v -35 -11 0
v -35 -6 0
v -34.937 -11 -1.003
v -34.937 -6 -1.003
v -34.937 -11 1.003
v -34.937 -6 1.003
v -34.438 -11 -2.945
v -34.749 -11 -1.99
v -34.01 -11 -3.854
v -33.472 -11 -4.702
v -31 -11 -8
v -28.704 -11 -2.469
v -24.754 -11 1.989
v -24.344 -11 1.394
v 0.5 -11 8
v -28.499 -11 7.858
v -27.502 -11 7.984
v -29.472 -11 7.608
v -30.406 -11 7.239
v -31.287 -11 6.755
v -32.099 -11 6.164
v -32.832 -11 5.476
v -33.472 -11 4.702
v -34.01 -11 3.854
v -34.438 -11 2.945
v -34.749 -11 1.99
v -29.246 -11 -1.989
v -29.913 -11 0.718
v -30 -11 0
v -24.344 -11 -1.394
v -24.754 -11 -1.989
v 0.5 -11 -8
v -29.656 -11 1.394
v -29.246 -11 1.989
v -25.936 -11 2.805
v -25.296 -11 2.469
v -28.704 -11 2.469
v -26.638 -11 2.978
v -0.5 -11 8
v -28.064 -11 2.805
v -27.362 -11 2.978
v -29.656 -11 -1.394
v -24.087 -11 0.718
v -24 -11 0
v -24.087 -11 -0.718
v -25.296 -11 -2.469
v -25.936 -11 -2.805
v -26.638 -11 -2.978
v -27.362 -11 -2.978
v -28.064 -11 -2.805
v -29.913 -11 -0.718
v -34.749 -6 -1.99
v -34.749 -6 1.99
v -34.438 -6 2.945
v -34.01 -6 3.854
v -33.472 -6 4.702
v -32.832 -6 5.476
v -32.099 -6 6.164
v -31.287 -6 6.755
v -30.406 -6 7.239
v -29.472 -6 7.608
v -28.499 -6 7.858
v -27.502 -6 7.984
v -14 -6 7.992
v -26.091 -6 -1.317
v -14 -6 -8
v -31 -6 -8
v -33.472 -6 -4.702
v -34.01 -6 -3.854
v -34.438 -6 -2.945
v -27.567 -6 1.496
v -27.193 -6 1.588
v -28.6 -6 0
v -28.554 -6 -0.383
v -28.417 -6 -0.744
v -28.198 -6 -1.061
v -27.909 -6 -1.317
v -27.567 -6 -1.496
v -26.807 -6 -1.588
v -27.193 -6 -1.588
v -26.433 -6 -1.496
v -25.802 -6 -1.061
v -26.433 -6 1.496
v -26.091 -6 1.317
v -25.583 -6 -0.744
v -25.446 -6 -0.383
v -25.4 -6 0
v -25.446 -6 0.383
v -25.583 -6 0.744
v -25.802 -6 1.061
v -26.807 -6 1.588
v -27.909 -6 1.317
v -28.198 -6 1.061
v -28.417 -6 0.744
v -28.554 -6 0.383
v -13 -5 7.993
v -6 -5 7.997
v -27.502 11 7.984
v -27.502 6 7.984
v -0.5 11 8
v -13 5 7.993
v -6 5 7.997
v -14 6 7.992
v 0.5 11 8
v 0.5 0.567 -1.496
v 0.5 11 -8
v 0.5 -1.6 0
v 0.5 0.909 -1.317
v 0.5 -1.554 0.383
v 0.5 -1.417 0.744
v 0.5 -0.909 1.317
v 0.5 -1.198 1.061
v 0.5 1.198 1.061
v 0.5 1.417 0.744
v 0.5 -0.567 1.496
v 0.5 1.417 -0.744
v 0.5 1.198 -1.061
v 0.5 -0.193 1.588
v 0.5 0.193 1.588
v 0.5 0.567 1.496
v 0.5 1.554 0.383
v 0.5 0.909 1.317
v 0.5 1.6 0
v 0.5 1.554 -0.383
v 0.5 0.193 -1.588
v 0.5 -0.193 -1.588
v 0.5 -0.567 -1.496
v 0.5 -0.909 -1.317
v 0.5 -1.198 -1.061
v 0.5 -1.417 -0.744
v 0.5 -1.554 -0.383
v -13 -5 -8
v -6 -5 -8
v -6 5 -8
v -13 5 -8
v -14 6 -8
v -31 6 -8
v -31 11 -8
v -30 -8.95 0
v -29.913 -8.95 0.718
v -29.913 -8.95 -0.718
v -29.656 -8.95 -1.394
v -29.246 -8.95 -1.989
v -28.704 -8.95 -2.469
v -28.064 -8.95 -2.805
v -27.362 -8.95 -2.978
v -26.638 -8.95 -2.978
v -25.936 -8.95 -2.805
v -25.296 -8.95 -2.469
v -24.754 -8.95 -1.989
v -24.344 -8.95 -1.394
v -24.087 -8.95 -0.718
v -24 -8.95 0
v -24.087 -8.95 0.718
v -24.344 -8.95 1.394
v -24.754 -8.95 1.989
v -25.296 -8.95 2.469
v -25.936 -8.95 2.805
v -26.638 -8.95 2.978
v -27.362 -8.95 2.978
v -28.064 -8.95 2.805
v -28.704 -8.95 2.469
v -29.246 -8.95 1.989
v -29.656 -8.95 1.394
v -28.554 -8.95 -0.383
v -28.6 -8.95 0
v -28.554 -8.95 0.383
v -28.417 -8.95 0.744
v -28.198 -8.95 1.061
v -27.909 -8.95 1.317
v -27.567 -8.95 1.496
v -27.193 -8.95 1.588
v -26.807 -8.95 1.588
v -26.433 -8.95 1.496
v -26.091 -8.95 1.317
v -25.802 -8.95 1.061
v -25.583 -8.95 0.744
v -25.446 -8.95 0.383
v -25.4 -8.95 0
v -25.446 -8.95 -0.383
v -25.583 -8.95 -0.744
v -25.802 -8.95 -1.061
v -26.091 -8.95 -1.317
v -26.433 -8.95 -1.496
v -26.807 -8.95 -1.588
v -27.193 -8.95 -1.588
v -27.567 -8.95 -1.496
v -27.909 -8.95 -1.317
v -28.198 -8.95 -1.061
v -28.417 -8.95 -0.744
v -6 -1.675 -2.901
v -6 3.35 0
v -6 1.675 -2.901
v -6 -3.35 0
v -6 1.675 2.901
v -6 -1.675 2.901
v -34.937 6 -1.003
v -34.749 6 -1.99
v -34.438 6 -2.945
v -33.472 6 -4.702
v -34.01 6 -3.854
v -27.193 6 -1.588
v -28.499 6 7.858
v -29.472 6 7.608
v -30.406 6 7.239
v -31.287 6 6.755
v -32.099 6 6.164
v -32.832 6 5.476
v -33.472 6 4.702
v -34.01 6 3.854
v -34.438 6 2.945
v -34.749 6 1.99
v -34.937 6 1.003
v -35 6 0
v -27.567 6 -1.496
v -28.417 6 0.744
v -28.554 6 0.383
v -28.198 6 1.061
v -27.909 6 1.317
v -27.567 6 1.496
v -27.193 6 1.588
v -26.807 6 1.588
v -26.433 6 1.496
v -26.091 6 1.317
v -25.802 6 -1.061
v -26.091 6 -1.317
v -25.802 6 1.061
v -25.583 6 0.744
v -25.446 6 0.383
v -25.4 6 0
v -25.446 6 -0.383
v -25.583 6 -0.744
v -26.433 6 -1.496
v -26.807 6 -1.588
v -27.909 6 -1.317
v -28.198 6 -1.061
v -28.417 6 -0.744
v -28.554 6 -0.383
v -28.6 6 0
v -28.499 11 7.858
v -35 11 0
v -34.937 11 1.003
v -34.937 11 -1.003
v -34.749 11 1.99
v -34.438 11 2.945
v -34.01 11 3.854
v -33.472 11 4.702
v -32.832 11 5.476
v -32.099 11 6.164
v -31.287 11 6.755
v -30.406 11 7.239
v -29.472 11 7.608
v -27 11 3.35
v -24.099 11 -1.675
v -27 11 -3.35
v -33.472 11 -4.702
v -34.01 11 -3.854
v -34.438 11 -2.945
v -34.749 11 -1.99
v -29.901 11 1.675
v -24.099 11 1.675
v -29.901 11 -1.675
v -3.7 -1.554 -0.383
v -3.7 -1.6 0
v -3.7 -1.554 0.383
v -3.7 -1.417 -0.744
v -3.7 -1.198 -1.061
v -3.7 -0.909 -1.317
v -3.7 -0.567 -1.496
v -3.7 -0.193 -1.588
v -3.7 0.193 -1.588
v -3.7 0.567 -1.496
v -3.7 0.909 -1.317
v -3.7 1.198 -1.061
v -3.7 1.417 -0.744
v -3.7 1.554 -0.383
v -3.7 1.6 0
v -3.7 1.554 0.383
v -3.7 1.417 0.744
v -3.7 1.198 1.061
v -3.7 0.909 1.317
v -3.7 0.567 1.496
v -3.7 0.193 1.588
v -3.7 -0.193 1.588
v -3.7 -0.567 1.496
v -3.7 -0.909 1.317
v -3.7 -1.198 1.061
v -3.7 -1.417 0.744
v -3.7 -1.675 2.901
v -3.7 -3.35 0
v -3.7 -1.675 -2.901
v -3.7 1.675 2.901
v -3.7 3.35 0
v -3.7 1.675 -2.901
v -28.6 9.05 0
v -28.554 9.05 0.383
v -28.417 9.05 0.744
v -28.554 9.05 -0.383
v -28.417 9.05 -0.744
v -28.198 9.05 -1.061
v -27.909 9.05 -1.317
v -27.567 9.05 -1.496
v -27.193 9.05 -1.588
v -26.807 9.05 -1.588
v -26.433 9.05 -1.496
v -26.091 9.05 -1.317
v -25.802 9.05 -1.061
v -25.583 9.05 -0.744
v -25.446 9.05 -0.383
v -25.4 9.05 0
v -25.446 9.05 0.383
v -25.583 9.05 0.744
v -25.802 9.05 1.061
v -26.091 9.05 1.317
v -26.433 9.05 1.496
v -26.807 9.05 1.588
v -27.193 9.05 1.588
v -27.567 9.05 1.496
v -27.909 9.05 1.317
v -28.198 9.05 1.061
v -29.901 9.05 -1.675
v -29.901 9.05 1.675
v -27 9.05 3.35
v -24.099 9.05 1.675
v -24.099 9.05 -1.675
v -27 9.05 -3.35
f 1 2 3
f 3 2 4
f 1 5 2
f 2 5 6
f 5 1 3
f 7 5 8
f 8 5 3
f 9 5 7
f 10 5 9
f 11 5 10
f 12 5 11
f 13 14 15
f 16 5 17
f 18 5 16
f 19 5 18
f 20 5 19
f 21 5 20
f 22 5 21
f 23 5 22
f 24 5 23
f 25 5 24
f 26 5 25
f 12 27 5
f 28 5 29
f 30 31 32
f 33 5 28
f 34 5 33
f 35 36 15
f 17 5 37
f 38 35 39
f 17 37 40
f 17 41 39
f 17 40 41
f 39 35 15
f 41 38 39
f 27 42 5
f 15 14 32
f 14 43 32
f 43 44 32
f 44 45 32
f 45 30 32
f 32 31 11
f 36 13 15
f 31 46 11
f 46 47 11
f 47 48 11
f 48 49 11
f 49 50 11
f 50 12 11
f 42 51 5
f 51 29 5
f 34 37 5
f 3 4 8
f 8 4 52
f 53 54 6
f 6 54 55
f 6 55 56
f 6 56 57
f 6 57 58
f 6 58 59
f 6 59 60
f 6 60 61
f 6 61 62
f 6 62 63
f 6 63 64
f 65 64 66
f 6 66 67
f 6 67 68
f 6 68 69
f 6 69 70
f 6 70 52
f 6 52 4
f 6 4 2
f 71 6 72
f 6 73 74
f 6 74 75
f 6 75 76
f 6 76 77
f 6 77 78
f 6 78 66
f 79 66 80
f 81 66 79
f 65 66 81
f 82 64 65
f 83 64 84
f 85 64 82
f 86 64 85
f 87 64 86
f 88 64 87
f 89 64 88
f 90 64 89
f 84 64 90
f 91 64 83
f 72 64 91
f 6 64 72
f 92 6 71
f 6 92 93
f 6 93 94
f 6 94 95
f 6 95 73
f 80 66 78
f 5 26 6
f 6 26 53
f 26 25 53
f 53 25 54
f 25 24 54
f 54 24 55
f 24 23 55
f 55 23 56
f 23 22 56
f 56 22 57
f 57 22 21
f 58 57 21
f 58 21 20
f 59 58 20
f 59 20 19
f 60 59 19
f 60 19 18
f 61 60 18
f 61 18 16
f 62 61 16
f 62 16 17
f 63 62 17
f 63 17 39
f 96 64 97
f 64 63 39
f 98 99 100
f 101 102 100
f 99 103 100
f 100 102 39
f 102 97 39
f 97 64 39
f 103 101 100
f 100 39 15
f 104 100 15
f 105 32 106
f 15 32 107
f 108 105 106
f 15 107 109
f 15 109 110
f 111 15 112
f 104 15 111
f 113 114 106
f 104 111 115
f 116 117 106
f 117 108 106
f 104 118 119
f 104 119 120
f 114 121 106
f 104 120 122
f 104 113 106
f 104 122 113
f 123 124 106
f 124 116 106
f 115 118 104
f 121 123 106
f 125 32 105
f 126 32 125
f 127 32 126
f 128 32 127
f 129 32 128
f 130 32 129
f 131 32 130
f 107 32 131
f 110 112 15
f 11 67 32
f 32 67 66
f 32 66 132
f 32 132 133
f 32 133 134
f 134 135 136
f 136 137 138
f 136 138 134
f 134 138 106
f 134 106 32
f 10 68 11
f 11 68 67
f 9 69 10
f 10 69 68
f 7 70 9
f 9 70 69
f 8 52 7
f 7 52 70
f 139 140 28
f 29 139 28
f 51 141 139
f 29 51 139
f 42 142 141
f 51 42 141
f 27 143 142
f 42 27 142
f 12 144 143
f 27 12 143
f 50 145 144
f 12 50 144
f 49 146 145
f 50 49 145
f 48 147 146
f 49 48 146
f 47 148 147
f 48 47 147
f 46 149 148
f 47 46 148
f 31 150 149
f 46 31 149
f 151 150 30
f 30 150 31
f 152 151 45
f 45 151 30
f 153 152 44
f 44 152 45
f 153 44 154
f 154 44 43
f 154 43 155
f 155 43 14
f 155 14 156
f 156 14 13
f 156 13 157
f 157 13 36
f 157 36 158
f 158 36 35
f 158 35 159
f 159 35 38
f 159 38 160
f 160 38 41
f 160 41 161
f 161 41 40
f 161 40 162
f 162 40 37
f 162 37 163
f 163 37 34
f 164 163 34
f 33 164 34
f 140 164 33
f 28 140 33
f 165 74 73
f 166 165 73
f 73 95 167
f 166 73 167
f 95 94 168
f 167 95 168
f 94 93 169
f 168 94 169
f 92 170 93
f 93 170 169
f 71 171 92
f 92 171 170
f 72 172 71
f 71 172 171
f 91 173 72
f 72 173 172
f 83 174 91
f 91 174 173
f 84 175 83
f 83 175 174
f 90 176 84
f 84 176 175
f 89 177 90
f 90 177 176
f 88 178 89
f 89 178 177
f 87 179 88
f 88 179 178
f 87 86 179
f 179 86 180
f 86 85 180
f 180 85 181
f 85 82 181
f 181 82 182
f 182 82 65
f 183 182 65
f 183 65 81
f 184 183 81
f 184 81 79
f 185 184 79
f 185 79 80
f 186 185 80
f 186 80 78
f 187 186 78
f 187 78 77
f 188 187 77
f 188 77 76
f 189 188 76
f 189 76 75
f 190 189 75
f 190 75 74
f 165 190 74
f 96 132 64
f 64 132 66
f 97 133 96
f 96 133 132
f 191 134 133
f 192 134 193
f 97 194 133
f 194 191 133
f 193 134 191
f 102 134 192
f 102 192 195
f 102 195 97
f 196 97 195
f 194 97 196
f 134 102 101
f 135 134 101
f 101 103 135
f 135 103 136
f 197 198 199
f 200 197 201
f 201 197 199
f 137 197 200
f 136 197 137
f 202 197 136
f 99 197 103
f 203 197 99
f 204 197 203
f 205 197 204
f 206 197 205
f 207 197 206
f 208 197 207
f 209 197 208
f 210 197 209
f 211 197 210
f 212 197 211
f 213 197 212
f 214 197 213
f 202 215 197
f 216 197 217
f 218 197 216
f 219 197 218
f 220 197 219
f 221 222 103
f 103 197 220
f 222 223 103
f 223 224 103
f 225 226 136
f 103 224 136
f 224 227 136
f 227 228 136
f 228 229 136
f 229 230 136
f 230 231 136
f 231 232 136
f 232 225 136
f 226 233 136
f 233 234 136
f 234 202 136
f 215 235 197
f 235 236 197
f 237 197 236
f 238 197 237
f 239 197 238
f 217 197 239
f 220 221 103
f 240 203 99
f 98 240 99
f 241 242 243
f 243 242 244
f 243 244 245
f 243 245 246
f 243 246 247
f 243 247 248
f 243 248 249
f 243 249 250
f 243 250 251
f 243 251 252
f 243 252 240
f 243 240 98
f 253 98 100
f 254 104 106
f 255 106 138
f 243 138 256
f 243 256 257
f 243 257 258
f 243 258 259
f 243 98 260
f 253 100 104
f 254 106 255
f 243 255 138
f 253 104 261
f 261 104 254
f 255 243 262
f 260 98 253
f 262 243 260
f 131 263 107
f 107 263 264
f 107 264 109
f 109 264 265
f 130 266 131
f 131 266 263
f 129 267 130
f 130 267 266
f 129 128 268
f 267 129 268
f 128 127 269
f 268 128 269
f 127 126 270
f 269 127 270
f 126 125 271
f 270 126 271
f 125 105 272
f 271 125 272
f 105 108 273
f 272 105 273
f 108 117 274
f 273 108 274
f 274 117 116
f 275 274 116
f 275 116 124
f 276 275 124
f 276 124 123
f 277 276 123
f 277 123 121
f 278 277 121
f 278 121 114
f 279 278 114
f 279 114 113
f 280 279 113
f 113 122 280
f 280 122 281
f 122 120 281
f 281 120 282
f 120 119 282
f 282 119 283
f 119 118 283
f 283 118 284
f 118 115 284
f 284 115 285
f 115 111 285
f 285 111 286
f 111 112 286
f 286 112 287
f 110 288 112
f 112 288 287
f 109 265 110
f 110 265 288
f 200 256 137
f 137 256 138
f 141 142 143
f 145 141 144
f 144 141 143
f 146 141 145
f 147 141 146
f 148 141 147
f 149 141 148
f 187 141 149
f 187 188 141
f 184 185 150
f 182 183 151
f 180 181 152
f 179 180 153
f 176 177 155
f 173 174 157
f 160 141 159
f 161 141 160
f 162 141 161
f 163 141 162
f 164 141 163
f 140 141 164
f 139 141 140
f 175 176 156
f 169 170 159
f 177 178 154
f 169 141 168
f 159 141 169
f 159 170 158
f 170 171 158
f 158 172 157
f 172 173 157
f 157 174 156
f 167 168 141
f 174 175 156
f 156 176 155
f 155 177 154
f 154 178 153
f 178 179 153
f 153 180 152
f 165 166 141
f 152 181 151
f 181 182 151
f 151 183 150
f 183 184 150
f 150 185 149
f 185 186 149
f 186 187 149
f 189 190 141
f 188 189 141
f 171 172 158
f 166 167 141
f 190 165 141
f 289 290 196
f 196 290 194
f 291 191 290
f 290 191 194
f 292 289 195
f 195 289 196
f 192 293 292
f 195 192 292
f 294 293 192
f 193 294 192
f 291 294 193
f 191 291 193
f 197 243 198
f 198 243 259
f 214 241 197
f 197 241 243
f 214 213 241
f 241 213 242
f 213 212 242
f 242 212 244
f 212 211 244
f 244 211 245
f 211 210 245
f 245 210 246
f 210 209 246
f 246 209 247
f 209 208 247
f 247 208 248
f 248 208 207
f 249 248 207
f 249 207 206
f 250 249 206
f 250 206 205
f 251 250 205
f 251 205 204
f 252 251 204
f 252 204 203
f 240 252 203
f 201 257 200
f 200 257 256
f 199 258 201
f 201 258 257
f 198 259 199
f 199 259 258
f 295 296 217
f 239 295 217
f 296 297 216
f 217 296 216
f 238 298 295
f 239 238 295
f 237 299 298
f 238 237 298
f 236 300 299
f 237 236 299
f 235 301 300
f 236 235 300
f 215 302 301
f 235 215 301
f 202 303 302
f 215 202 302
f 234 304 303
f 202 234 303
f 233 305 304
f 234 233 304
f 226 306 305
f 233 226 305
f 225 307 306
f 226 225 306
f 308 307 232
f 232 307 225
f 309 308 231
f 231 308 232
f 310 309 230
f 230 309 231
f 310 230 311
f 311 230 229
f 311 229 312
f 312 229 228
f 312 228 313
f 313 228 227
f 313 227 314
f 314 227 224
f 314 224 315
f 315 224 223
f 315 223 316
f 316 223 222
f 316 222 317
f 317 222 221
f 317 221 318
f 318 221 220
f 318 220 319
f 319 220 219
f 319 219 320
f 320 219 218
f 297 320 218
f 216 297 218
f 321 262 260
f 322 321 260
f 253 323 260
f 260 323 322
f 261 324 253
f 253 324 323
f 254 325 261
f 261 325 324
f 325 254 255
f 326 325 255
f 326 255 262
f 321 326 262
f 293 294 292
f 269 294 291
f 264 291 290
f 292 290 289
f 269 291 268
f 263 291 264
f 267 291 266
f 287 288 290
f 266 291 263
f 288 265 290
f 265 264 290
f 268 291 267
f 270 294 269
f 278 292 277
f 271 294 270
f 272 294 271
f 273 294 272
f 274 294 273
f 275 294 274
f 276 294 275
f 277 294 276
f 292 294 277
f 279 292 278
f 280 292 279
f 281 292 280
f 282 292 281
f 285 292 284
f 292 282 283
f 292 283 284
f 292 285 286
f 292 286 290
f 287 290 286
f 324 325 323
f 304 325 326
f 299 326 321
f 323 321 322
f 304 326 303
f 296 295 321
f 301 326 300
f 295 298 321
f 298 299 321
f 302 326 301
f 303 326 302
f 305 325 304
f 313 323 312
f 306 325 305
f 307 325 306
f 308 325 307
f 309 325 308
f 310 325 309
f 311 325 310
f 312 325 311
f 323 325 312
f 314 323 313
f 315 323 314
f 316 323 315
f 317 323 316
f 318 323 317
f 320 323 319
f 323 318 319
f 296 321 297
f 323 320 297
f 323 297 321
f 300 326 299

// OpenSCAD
// Y axis ilder - 623zz bearing
// Based on Powercode Code_Yidler_623.stl design (https://github.com/Mecan0/Code)
// By Julio Galaron (@jgalaron)
// Licence Creative commons atribution & share alike.

translate([0,0,0])difference(){

	hull(){
		cube([1,22,16], center=true);
		translate([-27,0,0])      rotate([90,0,0]) cylinder(h=22, r=16/2, $fn=50, center=true);
		translate([-30.5,0,-7.5]) rotate([0,0,0])  cube([1,22,1], center=true);
	}

	//Nice edges
	rotate([0,0,90]) translate([0,14,0]) cylinder(h=25, r=12/2, $fn=4, center=true);

	//holes
	translate([-11,0,0]) cube([10,10,17], center=true);
	translate([-26,0,0]) cube([24,12,17], center=true);
	
	//back screw holes
	translate([-5,0,0]) rotate([90,0,90]) cylinder(h=2.6, r=6.7/2, center=true, $fn=6);
	rotate([90,0,90])   cylinder(h=30, r=3.2/2, center=true, $fn=26);

	//front screw holes
	translate([-27,0,-16])     rotate([90,0,90]){
		translate([0,16,0])    rotate([0,90,0]) cylinder(h=25, r=3.2/2, $fn=26, center=true);
		translate([-10,16,0])  rotate([0,90,0]) cylinder(h=2.1, r=6/2, $fn=26, center=true);
		translate([10.1,16,0]) rotate([90,0,0]) rotate([0,90,0]) cylinder(h=2.1, r=6.7/2, $fn=6, center=true);
	}
}
